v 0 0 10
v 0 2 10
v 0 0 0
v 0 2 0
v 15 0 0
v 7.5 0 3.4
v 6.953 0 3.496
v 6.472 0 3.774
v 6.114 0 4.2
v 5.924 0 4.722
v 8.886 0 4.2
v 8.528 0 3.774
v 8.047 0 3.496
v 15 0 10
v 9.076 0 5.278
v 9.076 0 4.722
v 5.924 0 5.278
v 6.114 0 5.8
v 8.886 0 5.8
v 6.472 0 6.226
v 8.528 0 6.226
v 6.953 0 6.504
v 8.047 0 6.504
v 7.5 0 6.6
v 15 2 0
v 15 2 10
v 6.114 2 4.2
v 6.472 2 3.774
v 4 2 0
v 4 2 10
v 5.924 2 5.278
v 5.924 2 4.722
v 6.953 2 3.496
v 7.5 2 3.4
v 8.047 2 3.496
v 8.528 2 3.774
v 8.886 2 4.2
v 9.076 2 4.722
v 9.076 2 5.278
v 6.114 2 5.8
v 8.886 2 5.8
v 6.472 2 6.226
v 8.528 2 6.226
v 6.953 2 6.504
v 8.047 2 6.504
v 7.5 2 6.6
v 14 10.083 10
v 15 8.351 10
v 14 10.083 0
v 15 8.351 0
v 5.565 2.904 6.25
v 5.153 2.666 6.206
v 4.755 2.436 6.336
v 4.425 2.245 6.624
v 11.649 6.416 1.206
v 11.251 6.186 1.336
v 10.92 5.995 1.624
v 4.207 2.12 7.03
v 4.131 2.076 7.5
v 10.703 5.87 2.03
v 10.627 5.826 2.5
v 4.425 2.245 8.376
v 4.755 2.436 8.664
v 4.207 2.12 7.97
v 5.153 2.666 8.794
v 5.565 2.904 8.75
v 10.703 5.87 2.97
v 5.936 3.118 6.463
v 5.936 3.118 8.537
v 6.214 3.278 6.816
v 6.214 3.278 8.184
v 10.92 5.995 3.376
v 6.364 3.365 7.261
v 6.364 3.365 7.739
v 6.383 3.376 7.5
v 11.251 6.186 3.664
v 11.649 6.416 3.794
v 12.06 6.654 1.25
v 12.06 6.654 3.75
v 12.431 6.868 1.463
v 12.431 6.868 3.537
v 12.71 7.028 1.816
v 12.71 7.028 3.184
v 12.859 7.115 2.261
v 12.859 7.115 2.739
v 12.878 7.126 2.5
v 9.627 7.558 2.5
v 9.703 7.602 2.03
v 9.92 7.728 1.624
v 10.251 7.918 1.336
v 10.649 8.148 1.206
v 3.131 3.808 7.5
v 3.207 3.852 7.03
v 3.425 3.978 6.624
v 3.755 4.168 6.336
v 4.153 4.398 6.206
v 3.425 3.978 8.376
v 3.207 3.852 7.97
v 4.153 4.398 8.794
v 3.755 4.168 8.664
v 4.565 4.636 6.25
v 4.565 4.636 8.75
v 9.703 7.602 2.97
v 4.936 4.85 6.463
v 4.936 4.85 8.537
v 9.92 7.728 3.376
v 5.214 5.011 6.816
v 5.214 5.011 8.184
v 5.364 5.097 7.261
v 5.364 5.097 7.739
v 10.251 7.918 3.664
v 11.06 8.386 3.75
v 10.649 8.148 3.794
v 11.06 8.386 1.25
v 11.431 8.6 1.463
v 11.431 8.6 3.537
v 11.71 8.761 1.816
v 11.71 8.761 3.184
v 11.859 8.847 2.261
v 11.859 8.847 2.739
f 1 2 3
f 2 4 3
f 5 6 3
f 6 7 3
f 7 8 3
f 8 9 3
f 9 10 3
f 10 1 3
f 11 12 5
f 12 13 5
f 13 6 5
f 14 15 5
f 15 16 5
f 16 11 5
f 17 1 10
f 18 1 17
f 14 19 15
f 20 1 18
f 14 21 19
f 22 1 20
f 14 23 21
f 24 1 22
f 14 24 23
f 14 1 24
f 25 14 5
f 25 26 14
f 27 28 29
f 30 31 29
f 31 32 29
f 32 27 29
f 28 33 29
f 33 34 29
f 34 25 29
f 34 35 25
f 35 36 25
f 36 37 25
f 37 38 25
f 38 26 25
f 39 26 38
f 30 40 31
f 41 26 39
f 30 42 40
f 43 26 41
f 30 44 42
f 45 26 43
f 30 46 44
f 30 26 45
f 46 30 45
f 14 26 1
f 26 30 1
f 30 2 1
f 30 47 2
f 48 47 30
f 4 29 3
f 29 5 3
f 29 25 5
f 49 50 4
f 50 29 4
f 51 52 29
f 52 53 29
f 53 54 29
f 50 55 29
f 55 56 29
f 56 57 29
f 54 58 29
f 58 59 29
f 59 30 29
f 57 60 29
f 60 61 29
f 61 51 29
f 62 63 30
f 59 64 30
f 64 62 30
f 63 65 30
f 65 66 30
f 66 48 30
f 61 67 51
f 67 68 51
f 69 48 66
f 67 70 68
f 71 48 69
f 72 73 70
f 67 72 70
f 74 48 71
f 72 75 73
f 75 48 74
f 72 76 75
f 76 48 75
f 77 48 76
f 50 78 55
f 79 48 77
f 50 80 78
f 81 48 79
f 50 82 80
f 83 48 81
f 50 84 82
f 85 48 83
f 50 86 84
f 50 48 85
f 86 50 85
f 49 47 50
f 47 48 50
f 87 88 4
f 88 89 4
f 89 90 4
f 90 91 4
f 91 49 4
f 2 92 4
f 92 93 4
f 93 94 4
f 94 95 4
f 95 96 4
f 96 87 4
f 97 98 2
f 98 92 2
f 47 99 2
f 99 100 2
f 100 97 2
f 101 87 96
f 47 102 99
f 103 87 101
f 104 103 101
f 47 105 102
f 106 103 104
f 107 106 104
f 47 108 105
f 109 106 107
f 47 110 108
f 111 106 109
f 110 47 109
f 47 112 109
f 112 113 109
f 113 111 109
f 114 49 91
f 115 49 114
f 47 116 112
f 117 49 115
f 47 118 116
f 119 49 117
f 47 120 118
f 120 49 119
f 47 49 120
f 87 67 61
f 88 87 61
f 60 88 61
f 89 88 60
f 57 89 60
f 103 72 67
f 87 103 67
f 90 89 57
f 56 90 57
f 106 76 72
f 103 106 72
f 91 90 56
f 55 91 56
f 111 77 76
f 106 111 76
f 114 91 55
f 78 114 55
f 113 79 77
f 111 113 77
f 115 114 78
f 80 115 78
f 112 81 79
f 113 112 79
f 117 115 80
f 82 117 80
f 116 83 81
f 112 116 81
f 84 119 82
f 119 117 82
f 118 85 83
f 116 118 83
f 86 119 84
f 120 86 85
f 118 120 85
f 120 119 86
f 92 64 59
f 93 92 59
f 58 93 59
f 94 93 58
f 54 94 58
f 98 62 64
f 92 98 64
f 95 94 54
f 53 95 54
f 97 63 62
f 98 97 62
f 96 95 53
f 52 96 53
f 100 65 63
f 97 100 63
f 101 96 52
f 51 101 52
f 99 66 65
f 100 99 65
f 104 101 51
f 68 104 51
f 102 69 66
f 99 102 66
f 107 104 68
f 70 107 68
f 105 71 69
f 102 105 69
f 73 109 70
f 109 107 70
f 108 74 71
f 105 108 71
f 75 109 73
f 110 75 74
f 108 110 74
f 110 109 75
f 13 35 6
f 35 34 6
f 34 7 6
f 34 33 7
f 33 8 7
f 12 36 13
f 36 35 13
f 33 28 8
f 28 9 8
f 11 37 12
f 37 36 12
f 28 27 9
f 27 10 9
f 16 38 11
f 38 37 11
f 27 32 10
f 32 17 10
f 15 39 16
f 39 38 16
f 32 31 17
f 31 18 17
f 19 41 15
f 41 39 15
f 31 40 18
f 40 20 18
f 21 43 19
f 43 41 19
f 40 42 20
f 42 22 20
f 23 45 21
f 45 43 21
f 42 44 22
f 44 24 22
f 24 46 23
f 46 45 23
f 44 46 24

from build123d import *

# Parameters (mm, degrees)
SKETCH2_W           = 15
SKETCH2_H           = 2
BOSS_EXTRUDE1_DEPTH = 10
BOSS_EXTRUDE2_DEPTH = 10
SKETCH4_R           = 1.3
CUT_EXTRUDE1_DEPTH  = 2
SKETCH5_R           = 1.6
CUT_EXTRUDE2_DEPTH  = 2


with BuildPart() as part:
    # Sketch2 → Boss-Extrude1 (new body)
    with BuildSketch(Plane.XY):
        with Locations((7.5, 1)):
            Rectangle(SKETCH2_W, SKETCH2_H)
    extrude(amount=BOSS_EXTRUDE1_DEPTH)

    # Sketch3 → Boss-Extrude2 (add)
    with BuildSketch(Plane.XY.offset(10)):
        Polygon((0, 2), (4, 2), (15, 8.350852961), (14, 10.082903769), align=None)
    extrude(amount=-BOSS_EXTRUDE2_DEPTH)

    # Sketch4 → Cut-Extrude1 (cut)
    with BuildSketch(Plane(origin=(-0.866025404, 1.5, 0), x_dir=(0.8660254037844378, 0.5000000000000016, 0), z_dir=(-0.5000000000000016, 0.8660254037844378, 0))):
        with Locations(Location((5.915807537, -7.5, 0), (0, 0, 180))):
            Circle(SKETCH4_R)
        with Locations(Location((13.415807537, -2.5, 0), (0, 0, 180))):
            Circle(SKETCH4_R)
    extrude(amount=-CUT_EXTRUDE1_DEPTH, mode=Mode.SUBTRACT)

    # Sketch5 → Cut-Extrude2 (cut)
    with BuildSketch(Plane(origin=(0, 2, 0), x_dir=(1, 0, 0), z_dir=(0, 1, 0))):
        with Locations(Location((7.5, -5, 0), (0, 0, 270))):
            Circle(SKETCH5_R)
    extrude(amount=-CUT_EXTRUDE2_DEPTH, mode=Mode.SUBTRACT)


solid = part.part
